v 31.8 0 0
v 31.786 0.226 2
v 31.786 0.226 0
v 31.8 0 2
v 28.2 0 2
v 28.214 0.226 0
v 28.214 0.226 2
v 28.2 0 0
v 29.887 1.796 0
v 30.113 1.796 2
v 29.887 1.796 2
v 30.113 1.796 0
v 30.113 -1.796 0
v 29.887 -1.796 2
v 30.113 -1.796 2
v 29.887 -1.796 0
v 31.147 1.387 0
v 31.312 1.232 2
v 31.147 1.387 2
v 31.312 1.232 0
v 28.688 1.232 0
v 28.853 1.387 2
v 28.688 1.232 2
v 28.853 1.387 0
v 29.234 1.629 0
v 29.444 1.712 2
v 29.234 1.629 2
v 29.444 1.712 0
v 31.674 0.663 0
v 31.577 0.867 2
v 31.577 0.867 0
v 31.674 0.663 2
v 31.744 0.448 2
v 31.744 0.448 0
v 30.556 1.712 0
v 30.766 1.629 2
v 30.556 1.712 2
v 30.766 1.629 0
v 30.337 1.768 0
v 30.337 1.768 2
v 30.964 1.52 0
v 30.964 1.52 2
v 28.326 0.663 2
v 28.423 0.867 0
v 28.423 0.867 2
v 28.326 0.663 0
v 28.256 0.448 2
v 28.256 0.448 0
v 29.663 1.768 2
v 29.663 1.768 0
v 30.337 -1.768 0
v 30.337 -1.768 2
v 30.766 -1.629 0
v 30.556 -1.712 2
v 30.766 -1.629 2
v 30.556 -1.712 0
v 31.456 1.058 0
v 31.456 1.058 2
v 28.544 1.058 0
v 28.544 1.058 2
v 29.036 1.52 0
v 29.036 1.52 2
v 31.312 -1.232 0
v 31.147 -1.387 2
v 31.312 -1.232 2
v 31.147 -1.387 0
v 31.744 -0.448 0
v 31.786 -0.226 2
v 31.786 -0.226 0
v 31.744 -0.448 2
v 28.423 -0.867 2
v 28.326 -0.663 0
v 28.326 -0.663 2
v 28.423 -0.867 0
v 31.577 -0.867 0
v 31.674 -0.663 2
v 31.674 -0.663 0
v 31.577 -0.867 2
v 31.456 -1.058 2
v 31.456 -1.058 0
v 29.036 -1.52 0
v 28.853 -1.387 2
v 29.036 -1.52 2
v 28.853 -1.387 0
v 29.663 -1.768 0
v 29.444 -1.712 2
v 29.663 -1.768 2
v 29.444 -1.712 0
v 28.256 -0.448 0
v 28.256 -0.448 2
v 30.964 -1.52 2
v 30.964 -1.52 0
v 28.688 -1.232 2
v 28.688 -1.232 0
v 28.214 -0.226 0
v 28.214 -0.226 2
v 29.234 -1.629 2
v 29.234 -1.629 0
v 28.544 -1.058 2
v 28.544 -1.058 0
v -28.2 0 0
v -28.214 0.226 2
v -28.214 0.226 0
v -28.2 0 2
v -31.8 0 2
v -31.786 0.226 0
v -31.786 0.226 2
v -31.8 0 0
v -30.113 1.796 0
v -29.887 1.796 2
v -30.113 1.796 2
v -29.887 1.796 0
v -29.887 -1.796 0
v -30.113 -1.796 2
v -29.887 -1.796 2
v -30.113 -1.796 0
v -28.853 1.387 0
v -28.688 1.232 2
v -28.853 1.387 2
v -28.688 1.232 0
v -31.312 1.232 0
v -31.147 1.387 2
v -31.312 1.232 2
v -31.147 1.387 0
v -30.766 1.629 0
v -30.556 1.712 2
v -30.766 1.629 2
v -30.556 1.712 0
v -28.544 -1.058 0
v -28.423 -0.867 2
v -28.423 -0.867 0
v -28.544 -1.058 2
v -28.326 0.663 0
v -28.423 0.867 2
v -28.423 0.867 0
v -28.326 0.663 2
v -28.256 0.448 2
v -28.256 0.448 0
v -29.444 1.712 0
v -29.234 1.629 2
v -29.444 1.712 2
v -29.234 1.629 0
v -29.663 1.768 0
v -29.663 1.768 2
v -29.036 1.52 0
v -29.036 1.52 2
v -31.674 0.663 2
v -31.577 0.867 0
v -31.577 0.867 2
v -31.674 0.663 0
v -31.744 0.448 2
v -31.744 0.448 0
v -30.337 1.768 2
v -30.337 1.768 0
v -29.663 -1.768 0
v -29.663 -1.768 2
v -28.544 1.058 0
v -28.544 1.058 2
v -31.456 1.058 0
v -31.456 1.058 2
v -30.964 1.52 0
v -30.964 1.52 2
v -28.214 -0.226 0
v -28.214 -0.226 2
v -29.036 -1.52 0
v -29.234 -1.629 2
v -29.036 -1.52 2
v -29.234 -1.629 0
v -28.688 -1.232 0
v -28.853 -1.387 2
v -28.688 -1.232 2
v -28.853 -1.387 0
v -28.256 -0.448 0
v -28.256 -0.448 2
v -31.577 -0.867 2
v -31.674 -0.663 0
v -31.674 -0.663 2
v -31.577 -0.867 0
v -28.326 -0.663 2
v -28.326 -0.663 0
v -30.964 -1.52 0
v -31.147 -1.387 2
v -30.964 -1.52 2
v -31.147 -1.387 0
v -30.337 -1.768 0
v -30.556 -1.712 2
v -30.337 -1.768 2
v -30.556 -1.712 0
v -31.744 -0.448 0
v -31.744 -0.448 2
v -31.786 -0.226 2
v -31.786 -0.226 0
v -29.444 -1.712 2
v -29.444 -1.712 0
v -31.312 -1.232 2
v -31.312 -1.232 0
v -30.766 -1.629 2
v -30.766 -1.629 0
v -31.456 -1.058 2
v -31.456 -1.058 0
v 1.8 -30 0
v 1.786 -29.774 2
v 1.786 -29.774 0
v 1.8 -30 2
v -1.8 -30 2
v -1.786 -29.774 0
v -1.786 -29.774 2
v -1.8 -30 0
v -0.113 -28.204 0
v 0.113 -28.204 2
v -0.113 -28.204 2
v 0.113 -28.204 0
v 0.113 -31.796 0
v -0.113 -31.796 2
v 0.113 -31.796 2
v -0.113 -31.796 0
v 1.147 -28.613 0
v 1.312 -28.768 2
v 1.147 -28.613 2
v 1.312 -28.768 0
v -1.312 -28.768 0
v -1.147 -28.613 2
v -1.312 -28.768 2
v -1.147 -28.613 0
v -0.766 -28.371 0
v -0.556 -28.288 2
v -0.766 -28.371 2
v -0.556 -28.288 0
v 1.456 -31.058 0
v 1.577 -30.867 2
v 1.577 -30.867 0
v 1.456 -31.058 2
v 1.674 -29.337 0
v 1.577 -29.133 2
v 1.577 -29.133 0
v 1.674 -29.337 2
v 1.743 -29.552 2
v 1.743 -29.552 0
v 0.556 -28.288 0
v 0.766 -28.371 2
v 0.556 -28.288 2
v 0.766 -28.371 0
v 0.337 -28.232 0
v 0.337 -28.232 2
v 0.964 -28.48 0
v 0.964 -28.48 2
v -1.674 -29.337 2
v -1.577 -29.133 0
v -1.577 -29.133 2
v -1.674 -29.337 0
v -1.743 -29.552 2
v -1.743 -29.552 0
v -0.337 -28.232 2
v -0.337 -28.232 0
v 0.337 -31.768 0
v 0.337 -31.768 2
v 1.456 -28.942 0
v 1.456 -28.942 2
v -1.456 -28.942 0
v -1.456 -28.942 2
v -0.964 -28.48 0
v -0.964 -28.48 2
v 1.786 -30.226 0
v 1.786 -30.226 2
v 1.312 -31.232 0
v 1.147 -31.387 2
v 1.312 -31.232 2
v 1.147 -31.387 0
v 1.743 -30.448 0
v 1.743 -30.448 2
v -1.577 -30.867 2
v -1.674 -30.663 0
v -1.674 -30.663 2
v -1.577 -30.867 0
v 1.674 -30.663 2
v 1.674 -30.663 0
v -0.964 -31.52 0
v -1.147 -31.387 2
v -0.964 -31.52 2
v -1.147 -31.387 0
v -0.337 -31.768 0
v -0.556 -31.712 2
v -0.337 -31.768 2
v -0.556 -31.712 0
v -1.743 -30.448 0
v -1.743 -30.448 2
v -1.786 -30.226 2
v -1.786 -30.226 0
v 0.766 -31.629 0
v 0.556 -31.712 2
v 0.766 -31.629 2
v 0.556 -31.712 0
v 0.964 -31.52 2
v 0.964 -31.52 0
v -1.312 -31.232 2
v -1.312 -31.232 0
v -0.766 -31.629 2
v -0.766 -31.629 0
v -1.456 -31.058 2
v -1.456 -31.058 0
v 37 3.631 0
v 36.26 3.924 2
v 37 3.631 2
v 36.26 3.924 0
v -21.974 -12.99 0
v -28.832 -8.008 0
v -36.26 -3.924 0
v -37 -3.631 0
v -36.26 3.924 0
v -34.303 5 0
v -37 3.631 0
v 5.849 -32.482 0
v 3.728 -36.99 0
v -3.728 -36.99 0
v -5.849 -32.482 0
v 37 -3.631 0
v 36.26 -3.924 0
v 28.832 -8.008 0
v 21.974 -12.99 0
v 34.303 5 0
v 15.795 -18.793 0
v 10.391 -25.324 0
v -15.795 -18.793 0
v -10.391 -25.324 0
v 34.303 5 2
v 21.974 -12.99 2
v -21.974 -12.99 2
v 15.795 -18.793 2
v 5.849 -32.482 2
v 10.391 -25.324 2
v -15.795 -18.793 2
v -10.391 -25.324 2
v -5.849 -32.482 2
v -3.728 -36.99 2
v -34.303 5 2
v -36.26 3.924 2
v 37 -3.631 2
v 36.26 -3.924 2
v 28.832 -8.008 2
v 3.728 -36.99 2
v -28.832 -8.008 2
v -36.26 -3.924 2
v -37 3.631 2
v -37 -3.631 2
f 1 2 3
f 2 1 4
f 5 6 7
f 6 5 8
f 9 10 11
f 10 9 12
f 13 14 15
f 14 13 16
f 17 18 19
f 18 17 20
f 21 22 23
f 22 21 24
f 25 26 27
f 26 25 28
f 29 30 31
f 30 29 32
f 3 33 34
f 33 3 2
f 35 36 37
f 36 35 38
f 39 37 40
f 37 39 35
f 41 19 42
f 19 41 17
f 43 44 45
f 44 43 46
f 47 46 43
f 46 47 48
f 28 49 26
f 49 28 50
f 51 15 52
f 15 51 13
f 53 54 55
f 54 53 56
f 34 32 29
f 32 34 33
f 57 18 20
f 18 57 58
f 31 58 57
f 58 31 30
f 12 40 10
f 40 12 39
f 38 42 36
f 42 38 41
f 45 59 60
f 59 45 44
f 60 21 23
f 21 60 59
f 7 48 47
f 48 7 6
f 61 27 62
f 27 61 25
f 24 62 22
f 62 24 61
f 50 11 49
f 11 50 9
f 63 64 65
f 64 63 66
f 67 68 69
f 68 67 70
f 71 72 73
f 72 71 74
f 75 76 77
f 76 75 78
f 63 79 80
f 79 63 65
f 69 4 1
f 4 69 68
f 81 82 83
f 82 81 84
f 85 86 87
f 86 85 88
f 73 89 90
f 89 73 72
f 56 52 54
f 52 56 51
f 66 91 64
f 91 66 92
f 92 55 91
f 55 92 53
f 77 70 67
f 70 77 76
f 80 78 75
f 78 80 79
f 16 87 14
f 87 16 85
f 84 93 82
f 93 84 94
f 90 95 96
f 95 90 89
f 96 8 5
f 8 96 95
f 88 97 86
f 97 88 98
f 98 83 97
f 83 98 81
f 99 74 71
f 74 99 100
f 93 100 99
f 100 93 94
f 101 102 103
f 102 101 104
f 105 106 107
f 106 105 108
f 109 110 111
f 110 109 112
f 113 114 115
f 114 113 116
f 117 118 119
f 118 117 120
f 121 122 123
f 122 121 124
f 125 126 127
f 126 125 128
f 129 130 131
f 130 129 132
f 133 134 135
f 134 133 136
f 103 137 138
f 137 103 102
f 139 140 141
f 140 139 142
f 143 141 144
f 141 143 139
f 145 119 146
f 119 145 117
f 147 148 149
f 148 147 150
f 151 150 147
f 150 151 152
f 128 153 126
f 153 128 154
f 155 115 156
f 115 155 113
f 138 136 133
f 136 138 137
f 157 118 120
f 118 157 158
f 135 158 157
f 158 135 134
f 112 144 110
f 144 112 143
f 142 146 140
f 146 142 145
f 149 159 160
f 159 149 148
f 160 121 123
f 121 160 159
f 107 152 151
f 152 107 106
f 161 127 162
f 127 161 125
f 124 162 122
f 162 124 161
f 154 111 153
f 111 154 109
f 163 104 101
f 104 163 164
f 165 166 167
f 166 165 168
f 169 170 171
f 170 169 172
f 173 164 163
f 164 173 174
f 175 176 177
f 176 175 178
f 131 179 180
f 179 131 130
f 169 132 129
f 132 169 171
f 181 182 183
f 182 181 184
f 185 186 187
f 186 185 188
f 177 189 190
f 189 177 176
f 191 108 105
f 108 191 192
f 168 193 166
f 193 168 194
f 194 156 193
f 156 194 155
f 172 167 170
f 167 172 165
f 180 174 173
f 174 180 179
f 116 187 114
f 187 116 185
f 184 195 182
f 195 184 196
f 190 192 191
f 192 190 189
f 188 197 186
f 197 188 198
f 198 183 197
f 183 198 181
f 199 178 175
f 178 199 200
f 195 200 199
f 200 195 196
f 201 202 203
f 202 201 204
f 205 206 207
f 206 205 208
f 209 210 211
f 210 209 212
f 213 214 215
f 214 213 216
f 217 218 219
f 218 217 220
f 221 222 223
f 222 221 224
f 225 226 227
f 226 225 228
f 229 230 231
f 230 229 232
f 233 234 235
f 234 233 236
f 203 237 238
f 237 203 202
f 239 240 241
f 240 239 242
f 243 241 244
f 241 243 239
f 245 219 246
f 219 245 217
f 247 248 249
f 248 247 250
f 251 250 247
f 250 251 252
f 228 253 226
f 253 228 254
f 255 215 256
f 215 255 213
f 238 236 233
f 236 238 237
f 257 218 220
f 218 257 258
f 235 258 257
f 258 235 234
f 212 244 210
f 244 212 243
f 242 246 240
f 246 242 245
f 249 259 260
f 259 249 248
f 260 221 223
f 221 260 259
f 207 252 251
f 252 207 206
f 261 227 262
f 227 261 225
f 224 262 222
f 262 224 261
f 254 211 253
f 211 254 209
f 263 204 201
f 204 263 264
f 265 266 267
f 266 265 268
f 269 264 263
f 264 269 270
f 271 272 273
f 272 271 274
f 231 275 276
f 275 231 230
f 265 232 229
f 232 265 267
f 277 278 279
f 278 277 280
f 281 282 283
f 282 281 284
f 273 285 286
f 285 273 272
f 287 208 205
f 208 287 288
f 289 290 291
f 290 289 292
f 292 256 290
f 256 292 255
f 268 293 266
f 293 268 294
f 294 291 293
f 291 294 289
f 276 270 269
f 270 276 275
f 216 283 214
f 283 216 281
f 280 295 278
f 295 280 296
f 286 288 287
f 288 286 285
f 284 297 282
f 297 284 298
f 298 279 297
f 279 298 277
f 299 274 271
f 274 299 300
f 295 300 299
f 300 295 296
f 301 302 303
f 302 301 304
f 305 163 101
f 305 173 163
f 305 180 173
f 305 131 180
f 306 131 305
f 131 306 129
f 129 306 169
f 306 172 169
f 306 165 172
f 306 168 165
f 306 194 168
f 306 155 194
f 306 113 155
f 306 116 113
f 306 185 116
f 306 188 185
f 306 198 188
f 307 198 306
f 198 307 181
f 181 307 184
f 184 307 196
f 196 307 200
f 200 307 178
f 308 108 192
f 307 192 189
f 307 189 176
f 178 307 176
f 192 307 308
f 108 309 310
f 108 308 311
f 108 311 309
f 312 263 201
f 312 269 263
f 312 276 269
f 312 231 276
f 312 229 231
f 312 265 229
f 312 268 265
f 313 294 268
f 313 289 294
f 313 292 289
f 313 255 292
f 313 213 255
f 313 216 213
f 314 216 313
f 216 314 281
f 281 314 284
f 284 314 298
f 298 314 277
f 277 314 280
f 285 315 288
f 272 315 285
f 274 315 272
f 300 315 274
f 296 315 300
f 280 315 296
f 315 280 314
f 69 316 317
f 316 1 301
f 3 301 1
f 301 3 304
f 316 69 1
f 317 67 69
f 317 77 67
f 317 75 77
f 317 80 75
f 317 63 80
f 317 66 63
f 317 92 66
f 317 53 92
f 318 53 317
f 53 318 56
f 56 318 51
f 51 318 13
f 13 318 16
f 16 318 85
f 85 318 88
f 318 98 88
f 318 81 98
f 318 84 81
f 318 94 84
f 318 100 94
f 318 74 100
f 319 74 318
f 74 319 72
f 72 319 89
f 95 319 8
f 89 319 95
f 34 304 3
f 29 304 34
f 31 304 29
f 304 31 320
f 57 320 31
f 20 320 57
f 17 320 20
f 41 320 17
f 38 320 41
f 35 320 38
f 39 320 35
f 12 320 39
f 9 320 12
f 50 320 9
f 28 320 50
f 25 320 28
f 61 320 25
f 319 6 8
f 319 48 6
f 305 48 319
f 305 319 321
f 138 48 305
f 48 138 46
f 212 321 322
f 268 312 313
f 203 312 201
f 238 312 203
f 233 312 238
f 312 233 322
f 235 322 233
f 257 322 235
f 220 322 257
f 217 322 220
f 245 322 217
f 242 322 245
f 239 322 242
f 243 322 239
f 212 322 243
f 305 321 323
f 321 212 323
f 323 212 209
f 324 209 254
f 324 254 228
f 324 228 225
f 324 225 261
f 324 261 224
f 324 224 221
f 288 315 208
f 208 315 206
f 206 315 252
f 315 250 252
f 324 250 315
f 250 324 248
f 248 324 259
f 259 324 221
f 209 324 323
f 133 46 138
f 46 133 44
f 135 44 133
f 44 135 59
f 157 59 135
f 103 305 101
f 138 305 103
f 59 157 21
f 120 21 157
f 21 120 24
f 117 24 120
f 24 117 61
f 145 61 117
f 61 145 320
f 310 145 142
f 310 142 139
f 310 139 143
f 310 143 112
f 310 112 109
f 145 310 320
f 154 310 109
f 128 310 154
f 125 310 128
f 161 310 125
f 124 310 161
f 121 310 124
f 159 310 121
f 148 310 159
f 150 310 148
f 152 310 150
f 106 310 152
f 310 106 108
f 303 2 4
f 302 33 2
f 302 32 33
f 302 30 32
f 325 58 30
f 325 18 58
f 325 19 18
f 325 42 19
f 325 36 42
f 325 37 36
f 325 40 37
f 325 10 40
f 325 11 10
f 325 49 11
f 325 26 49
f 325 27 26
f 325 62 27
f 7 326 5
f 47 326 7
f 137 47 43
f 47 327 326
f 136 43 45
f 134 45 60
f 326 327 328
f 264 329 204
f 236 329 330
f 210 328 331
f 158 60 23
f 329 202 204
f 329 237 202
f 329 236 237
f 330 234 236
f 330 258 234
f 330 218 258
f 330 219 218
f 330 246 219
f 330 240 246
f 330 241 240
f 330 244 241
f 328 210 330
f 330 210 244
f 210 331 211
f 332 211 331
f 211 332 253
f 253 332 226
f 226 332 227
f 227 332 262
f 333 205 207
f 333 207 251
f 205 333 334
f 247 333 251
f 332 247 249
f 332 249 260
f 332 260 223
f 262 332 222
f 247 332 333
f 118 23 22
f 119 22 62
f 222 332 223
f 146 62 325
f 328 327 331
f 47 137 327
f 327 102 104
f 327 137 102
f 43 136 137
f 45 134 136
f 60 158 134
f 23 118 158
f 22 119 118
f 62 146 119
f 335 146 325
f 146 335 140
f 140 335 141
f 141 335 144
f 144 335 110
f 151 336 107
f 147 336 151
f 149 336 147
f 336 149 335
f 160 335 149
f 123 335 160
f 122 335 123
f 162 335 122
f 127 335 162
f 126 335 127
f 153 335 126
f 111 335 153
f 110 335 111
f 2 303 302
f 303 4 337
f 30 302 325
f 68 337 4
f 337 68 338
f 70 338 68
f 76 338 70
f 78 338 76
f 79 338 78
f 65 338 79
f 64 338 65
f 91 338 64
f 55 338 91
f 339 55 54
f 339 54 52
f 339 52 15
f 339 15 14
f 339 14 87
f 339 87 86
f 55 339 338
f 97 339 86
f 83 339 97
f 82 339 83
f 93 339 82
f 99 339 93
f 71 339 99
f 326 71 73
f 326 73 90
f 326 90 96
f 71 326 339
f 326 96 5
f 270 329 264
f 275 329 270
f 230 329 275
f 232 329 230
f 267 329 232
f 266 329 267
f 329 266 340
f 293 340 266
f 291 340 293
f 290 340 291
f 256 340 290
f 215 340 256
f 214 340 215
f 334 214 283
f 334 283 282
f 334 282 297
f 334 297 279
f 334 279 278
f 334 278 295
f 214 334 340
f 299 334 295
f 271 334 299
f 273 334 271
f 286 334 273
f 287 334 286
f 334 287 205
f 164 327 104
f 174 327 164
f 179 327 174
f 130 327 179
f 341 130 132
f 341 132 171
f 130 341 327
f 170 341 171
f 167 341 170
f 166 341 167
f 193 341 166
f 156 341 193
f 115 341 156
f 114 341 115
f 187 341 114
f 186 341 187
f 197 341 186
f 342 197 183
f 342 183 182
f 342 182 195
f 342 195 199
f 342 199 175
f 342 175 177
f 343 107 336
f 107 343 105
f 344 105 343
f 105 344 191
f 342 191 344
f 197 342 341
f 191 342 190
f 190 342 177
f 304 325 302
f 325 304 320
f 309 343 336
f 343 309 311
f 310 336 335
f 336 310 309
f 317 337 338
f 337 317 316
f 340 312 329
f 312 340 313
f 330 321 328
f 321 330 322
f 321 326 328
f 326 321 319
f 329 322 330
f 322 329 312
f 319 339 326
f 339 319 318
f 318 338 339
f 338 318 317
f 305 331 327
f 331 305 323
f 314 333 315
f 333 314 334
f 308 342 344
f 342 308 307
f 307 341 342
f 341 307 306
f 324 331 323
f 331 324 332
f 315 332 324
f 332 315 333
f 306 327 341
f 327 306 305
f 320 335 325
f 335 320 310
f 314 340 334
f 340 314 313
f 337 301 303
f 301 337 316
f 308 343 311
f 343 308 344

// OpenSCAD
$fn = 50;


difference() {
	union() {
		hull() {
			translate(v = [-32.0000000000, 32.0000000000, 0]) {
				cylinder(h = 2, r = 5);
			}
			translate(v = [32.0000000000, 32.0000000000, 0]) {
				cylinder(h = 2, r = 5);
			}
			translate(v = [-32.0000000000, -32.0000000000, 0]) {
				cylinder(h = 2, r = 5);
			}
			translate(v = [32.0000000000, -32.0000000000, 0]) {
				cylinder(h = 2, r = 5);
			}
		}
	}
	union() {
		translate(v = [30, 0, -100.0000000000]) {
			cylinder(h = 200, r = 1.8000000000);
		}
		translate(v = [-30, 0, -100.0000000000]) {
			cylinder(h = 200, r = 1.8000000000);
		}
		translate(v = [0, -30, -100.0000000000]) {
			cylinder(h = 200, r = 1.8000000000);
		}
		translate(v = [0, 30, -100.0000000000]) {
			cylinder(h = 200, r = 1.8000000000);
		}
		translate(v = [65, 65, 0.0000000000]) {
			cylinder(h = 2, r = 67.5000000000);
		}
		translate(v = [-65, 65, 0.0000000000]) {
			cylinder(h = 2, r = 67.5000000000);
		}
		translate(v = [65, -65, 0.0000000000]) {
			cylinder(h = 2, r = 67.5000000000);
		}
		translate(v = [-65, -65, 0.0000000000]) {
			cylinder(h = 2, r = 67.5000000000);
		}
		translate(v = [-250, 5, -250]) {
			cube(size = [500, 500, 500]);
		}
		translate(v = [-250, 5, -250]) {
			cube(size = [500, 500, 500]);
		}
		translate(v = [-250, 5, -250]) {
			cube(size = [500, 500, 500]);
		}
	}
}
